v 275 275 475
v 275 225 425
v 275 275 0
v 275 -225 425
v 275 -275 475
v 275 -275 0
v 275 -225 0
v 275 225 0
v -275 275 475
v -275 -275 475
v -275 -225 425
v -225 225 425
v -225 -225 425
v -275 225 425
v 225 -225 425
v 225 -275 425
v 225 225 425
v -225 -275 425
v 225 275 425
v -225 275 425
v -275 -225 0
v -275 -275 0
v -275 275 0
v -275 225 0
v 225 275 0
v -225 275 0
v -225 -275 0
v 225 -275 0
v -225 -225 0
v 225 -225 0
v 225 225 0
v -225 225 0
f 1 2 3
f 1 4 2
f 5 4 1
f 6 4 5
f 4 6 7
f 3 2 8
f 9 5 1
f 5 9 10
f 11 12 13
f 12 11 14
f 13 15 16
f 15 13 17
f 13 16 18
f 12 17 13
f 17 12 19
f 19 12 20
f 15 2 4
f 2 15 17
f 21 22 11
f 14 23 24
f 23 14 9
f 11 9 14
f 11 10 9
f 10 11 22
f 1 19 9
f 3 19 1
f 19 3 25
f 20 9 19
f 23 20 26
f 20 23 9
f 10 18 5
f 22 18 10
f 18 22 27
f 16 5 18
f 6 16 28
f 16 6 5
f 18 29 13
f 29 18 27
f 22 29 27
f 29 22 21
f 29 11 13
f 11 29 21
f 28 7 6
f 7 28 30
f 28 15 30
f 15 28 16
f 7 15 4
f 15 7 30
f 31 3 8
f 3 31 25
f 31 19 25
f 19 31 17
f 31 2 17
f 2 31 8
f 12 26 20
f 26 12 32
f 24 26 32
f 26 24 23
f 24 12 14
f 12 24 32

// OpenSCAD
// IKEA Lack table. Dimensions: length: 55 cm, width: 55 cm, height: 45 cm.

side_x = 550;
side_y = 550;
height = 450;
thickness = 50;

union()
{
  translate([-side_x/2, -side_y/2, height - thickness/2])
    cube([side_x, side_y, thickness]);

  translate([-side_x/2, -side_y/2, 0])
    cube([thickness, thickness, height]);

  translate([+side_x/2 - thickness, -side_y/2, 0])
    cube([thickness, thickness, height]);

  translate([+side_x/2 - thickness, +side_y/2 - thickness, 0])
    cube([thickness, thickness, height]);
  
  translate([-side_x/2, +side_y/2 - thickness, 0])
    cube([thickness, thickness, height]);
}
